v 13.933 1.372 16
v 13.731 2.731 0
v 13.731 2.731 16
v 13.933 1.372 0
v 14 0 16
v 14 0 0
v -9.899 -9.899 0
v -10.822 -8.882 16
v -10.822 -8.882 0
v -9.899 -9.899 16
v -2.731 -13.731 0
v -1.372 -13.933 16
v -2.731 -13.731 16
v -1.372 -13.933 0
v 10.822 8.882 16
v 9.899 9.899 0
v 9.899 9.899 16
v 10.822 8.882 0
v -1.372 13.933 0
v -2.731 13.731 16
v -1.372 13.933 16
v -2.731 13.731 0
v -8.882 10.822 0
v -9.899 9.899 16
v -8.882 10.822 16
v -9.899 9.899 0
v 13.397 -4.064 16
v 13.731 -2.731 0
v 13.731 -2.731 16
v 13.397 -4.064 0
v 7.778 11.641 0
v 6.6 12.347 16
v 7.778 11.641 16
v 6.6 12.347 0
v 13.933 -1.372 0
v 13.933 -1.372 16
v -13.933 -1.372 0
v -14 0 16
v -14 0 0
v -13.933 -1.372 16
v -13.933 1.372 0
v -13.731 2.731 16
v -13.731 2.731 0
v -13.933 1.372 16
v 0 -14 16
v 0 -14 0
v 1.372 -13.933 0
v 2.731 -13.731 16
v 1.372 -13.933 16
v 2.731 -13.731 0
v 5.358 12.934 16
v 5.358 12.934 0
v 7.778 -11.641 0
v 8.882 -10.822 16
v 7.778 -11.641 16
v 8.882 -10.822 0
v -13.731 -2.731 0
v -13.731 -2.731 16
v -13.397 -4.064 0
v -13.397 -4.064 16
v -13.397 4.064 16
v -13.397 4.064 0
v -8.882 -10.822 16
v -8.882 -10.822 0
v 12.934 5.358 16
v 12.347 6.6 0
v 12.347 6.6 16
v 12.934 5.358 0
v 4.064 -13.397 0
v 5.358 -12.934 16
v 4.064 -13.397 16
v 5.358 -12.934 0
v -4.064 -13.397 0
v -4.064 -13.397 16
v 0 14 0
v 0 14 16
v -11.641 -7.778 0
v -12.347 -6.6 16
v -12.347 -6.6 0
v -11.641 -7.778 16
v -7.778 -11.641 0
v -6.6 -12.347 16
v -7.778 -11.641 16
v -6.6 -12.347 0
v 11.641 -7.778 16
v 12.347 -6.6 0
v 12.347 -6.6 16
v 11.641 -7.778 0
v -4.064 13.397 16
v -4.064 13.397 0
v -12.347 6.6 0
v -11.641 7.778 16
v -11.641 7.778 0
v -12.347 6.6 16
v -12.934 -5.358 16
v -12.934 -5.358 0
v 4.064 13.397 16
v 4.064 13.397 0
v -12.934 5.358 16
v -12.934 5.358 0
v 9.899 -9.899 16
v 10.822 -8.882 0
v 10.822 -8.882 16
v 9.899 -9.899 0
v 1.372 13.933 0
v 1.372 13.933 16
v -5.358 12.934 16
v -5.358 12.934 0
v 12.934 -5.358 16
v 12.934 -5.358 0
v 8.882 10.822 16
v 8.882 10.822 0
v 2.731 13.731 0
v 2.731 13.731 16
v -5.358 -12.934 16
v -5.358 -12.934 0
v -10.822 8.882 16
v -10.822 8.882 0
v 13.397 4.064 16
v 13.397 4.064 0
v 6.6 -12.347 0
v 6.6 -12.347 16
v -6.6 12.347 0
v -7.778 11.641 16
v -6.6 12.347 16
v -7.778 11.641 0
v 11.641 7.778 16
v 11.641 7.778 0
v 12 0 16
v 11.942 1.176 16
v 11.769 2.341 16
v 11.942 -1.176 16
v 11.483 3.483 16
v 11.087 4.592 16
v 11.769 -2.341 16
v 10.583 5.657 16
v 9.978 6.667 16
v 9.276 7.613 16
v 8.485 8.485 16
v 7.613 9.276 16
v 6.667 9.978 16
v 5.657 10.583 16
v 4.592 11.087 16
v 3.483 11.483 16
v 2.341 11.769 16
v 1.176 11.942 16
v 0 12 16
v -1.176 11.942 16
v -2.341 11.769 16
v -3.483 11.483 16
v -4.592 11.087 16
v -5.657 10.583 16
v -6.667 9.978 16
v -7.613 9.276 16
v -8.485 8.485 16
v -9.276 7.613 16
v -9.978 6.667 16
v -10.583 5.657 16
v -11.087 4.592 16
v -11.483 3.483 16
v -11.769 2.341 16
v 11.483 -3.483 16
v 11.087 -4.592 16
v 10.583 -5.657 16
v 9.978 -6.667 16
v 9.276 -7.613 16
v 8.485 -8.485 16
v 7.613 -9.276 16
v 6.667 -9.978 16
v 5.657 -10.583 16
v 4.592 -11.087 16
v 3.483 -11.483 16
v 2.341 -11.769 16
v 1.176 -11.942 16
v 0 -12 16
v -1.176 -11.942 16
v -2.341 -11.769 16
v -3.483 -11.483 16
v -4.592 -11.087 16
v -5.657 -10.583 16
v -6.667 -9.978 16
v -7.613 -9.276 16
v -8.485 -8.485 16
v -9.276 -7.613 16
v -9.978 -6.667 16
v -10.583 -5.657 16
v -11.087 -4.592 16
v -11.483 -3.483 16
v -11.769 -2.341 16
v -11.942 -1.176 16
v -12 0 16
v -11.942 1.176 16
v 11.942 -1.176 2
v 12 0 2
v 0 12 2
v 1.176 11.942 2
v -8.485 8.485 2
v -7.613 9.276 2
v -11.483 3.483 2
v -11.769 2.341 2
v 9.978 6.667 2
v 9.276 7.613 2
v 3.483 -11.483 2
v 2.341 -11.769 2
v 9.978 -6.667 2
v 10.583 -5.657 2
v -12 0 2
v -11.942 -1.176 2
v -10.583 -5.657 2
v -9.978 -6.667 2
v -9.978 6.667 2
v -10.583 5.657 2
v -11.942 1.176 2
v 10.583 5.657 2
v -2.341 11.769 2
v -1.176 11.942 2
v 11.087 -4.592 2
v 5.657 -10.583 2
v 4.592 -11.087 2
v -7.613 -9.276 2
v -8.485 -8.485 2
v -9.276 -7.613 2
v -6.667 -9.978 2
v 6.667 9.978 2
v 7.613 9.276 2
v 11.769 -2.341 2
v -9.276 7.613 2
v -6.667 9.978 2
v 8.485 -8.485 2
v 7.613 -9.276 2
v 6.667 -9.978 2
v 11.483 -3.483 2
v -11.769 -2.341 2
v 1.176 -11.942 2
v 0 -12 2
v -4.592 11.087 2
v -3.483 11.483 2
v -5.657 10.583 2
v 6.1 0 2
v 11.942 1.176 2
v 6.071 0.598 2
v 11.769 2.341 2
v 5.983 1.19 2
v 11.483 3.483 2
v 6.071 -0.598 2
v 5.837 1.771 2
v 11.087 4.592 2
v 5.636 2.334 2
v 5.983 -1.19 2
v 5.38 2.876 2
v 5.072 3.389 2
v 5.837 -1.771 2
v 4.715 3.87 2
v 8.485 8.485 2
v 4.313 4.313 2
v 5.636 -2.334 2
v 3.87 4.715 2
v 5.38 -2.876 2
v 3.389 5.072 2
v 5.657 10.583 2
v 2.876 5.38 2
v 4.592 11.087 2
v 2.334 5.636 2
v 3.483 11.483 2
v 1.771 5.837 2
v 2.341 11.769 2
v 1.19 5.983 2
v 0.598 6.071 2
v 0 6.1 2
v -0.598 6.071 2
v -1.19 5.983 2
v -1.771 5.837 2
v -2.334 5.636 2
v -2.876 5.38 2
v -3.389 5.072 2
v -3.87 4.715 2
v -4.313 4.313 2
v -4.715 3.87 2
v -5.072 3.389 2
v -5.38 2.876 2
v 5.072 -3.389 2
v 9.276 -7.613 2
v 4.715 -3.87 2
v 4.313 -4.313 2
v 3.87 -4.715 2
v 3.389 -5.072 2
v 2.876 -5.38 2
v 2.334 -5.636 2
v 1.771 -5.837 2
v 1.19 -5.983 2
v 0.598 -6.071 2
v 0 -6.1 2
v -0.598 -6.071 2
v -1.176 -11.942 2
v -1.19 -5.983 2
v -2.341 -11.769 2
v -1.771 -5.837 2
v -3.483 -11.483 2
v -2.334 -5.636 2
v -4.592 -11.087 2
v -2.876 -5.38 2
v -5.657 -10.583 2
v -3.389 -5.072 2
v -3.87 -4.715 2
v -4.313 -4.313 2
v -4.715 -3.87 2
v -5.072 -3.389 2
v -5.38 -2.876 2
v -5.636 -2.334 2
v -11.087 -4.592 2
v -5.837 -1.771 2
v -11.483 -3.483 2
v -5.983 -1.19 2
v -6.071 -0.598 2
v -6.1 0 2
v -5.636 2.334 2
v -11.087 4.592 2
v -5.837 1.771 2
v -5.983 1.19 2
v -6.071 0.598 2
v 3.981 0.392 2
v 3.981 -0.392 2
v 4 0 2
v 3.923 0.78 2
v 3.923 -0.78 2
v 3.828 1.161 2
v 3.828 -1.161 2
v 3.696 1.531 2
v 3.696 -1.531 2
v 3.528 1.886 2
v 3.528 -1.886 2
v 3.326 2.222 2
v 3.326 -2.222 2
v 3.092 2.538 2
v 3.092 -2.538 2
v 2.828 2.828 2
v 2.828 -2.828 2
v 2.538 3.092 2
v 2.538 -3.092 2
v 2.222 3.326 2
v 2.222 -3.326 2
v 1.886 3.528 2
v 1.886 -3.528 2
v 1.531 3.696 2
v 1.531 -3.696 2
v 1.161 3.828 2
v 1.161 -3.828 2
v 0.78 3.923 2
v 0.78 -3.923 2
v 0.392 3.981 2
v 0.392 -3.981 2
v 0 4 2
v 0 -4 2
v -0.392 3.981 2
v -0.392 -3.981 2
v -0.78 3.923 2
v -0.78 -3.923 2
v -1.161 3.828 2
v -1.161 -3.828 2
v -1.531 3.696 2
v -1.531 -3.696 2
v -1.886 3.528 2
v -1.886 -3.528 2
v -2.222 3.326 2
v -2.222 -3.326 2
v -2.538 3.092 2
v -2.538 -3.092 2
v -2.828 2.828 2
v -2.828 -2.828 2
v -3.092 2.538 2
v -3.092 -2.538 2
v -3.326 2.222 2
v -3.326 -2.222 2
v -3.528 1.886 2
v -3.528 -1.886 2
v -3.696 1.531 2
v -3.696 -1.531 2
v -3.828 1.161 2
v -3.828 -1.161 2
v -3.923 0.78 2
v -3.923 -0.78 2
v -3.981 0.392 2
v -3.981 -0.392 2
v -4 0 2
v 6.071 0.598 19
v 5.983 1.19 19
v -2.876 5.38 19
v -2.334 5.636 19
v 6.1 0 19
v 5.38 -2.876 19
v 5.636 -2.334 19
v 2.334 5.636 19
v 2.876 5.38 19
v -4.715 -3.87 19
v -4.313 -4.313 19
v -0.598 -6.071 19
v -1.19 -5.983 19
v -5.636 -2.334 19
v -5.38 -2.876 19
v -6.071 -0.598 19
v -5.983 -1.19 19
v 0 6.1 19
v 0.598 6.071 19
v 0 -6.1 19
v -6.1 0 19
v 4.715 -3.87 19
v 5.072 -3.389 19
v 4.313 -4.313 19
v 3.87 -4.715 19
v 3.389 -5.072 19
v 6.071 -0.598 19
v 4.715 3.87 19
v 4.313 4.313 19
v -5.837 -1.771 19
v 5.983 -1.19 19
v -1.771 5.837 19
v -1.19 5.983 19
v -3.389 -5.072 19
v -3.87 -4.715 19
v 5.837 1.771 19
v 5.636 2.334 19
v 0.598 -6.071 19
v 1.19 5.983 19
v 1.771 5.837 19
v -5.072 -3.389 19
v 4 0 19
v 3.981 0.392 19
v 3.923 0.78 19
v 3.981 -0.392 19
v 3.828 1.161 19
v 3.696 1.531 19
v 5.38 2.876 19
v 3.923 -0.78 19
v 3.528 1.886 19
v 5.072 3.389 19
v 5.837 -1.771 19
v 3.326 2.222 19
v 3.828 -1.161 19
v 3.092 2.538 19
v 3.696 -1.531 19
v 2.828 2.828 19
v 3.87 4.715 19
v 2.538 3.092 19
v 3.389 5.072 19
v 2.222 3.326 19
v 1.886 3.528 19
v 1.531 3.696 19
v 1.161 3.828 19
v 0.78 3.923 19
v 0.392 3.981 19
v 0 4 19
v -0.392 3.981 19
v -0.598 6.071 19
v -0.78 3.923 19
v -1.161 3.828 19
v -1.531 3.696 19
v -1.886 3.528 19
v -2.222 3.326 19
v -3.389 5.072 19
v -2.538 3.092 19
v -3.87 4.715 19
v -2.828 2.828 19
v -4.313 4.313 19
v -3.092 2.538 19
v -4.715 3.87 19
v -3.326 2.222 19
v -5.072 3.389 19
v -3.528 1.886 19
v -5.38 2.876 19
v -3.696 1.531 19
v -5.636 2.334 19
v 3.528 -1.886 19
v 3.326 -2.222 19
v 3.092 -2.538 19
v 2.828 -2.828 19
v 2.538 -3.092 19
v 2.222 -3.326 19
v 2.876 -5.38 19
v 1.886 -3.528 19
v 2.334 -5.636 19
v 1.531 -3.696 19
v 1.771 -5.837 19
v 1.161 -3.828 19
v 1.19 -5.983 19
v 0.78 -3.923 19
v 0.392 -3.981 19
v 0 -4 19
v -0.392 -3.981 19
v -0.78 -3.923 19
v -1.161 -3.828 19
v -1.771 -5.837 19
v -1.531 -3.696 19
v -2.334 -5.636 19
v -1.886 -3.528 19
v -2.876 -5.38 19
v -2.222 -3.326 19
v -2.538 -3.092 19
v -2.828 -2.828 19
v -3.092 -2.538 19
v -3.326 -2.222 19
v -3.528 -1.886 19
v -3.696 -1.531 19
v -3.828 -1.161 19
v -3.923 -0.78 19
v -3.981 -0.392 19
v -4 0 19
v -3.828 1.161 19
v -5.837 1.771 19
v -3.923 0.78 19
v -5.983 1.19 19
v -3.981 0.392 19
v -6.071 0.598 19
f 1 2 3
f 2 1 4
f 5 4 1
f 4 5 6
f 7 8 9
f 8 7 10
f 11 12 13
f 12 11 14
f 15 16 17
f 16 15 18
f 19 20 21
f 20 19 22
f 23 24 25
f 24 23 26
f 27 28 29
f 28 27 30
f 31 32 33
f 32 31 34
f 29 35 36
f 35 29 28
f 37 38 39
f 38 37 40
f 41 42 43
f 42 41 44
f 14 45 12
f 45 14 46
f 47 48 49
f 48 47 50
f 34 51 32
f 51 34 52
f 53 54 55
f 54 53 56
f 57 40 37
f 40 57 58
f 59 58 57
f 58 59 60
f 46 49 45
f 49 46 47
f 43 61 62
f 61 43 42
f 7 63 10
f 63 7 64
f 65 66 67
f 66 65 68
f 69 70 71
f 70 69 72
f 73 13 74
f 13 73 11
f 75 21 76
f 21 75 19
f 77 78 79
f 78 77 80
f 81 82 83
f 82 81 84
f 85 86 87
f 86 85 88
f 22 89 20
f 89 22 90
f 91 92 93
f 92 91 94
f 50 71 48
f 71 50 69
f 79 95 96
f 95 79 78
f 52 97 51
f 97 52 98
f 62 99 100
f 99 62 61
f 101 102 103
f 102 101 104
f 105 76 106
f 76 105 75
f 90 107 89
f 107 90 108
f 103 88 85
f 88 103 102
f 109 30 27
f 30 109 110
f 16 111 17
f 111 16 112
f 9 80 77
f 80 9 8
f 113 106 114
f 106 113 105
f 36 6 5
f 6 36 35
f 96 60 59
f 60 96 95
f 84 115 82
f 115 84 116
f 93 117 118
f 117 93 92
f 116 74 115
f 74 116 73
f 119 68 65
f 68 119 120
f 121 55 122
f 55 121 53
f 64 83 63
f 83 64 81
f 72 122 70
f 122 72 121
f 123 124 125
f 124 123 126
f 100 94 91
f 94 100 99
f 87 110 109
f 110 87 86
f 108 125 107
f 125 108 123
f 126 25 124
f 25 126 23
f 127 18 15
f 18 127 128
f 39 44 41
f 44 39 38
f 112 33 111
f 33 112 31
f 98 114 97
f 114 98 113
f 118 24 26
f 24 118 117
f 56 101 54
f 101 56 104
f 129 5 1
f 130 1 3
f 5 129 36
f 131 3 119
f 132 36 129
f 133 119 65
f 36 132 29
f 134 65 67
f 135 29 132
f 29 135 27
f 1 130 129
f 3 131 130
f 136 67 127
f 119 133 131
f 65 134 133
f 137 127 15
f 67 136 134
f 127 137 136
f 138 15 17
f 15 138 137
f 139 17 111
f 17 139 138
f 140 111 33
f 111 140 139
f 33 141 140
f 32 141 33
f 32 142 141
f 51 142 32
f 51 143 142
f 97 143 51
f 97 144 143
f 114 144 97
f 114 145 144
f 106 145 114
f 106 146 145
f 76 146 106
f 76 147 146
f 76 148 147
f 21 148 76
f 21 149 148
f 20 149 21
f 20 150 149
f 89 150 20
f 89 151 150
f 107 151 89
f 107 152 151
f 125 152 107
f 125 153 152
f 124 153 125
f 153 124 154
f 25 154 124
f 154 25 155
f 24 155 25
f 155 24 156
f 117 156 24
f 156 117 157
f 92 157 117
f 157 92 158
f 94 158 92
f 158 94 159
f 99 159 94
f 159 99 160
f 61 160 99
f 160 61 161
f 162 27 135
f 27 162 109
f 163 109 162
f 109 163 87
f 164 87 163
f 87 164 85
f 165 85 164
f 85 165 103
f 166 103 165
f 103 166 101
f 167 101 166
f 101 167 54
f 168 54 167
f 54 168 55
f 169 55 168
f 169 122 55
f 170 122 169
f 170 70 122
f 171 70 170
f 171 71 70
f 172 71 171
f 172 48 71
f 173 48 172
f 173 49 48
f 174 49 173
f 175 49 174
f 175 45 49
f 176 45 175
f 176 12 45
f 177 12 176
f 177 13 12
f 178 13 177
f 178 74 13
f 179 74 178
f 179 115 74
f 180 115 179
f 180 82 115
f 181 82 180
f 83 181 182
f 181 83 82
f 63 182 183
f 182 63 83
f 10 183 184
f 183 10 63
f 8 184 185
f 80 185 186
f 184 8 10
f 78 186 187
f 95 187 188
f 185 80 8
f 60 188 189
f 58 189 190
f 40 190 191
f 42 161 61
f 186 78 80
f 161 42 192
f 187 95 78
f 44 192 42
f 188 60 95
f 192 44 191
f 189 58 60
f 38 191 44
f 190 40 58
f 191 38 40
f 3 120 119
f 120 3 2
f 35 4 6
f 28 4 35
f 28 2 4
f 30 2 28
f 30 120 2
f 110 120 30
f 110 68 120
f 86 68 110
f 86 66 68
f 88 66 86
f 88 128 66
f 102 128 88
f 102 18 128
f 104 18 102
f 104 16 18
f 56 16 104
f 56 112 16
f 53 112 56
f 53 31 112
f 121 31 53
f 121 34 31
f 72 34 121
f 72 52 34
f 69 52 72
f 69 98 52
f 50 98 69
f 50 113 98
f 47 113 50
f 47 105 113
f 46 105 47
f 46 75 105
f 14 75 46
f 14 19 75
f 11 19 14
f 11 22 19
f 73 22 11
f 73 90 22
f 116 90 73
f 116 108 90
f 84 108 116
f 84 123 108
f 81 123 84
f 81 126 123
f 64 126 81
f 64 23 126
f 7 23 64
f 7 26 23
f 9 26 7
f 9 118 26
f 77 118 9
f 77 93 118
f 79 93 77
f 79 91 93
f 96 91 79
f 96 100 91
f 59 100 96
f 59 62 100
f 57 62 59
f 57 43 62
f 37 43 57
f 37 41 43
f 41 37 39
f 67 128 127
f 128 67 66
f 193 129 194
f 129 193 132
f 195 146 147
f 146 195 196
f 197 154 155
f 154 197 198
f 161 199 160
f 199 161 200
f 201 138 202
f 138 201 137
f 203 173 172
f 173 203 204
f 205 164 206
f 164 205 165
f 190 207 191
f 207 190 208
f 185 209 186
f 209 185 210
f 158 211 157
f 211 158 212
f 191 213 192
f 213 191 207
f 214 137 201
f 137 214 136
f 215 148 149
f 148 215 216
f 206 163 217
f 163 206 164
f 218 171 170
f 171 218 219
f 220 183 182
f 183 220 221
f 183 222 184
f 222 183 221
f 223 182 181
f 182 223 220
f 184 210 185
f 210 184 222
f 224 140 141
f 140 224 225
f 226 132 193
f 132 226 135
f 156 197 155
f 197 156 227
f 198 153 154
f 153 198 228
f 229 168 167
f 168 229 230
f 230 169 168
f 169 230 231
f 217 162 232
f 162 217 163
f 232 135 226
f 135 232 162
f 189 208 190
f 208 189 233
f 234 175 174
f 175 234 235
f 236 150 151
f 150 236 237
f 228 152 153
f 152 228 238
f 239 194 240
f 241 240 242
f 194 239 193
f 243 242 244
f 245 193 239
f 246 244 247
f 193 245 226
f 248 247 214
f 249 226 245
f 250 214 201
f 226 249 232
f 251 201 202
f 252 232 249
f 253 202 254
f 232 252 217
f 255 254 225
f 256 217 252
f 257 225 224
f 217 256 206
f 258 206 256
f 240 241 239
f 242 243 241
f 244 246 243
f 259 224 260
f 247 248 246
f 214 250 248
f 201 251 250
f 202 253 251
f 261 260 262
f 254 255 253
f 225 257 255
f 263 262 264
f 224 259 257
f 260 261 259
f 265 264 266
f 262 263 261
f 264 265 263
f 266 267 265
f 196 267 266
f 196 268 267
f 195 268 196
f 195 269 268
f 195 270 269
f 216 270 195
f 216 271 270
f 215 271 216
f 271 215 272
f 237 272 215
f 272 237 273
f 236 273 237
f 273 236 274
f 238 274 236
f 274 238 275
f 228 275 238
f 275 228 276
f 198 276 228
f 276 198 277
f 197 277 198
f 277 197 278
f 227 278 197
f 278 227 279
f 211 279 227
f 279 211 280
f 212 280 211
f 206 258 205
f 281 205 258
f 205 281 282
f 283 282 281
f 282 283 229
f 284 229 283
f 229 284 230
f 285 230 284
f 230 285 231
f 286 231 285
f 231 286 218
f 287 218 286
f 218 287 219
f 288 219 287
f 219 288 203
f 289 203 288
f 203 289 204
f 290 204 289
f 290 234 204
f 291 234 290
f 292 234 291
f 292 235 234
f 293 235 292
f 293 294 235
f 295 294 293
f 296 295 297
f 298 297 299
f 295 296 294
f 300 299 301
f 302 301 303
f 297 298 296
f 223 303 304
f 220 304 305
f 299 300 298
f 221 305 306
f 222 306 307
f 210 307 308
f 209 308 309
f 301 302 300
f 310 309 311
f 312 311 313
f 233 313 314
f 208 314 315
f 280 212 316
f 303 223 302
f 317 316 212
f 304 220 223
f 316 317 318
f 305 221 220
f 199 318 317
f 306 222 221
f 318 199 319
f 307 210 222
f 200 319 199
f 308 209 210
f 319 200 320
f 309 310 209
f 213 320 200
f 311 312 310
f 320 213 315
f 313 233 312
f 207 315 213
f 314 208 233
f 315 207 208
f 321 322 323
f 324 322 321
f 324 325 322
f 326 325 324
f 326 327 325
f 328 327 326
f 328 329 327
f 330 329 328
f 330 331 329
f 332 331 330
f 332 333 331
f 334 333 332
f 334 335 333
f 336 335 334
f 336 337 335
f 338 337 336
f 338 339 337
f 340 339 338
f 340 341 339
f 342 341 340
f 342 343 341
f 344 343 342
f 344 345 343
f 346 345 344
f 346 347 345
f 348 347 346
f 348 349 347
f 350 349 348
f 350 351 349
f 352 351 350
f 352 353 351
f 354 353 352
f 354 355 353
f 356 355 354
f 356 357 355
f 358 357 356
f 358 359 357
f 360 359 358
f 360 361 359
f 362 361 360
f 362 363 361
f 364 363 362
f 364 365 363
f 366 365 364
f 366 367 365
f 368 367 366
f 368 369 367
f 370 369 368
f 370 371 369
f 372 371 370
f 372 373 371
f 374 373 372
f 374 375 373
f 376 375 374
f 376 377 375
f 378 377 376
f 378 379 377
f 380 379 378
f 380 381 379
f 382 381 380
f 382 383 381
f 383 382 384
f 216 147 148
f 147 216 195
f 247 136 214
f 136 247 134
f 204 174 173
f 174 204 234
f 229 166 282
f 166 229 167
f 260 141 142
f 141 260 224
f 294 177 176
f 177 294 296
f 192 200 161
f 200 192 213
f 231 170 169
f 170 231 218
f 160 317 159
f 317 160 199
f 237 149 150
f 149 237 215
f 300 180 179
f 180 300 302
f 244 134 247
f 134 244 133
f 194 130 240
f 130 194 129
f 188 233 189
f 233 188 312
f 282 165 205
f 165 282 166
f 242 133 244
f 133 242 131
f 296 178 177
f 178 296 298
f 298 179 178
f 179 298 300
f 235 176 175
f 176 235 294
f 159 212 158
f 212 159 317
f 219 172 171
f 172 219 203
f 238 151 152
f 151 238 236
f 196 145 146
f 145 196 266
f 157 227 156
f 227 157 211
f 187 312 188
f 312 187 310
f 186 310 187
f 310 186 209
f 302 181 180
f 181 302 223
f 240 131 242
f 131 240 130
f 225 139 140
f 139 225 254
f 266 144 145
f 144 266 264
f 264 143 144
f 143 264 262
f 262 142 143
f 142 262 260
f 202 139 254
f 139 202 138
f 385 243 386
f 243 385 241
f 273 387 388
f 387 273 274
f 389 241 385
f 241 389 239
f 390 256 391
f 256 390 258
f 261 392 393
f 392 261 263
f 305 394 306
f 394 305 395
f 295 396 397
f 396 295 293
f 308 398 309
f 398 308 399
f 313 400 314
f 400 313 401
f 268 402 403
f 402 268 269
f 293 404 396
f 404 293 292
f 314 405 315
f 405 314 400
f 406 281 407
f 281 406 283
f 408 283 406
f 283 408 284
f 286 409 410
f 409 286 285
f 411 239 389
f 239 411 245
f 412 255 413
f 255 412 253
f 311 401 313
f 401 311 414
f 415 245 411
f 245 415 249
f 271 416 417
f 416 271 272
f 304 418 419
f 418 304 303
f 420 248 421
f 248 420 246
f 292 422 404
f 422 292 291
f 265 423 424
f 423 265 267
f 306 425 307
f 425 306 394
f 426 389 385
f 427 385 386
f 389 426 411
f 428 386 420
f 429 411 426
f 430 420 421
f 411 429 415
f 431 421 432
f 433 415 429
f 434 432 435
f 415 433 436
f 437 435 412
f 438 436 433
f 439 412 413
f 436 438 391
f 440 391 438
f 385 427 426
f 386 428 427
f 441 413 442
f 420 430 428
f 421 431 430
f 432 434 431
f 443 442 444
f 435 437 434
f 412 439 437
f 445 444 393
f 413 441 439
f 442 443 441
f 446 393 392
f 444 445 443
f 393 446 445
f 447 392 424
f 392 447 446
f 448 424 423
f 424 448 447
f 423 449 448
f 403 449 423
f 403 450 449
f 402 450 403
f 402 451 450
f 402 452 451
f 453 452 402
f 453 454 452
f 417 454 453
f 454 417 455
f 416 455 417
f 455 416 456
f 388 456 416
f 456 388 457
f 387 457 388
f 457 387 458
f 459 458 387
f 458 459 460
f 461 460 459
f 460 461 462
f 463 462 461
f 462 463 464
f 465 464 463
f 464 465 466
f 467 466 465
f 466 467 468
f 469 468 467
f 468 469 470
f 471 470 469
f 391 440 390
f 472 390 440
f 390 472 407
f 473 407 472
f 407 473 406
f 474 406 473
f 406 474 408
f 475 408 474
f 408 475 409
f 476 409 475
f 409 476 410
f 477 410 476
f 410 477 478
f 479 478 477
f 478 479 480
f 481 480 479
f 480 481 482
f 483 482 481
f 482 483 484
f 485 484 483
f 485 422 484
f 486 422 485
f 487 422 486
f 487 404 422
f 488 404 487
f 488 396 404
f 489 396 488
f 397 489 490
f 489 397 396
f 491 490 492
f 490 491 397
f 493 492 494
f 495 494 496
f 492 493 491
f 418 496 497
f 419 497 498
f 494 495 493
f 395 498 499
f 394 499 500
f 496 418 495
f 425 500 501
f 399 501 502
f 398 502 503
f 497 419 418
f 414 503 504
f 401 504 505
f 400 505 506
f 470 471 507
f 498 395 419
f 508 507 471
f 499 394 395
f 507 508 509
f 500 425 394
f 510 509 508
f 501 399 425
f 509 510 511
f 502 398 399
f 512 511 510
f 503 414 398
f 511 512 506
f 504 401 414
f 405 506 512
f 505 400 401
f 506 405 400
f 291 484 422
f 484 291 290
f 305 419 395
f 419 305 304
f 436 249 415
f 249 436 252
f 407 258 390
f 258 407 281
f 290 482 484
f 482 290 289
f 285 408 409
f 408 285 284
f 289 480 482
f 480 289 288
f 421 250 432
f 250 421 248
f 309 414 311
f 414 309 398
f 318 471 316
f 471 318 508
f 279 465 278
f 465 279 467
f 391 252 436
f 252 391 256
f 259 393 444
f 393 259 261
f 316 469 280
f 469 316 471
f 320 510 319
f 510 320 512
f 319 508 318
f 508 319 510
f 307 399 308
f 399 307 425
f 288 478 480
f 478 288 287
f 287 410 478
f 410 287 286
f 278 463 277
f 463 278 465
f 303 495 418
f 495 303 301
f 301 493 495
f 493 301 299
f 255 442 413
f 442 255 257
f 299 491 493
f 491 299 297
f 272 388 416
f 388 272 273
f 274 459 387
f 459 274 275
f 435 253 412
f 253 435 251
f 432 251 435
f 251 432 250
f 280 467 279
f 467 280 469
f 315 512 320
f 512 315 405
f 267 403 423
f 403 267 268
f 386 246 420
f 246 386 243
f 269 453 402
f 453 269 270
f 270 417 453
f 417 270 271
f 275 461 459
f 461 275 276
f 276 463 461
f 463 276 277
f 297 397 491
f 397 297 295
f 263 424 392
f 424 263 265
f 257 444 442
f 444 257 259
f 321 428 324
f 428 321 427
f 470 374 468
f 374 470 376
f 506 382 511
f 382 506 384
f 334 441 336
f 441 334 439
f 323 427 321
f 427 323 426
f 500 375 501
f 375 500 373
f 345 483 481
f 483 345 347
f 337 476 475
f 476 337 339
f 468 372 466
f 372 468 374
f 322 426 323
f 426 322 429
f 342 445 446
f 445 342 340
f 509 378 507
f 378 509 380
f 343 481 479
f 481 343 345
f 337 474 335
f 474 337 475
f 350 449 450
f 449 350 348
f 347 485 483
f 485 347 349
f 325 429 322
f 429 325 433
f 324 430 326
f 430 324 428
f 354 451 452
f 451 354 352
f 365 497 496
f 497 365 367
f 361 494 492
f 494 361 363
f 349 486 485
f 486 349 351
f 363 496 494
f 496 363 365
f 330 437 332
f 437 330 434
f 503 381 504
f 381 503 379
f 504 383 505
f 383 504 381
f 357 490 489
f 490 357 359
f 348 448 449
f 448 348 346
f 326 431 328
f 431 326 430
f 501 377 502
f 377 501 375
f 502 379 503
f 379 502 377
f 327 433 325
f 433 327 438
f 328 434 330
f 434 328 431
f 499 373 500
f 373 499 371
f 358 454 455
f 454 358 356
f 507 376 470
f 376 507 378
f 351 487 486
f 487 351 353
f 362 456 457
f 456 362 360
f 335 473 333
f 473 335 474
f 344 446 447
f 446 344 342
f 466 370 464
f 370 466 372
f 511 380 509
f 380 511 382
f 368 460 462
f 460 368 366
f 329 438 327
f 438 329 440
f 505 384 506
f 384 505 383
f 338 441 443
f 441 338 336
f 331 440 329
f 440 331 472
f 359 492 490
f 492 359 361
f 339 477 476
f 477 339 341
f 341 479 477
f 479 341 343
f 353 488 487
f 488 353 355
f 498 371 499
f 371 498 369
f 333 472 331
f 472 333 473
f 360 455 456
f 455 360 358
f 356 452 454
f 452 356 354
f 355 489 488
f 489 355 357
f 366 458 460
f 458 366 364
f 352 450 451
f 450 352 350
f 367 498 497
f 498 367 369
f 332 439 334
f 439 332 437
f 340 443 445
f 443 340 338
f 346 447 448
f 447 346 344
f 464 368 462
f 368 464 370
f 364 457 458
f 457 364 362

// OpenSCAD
$fn = 64;

union() {
    difference() {
        linear_extrude(16)
            circle(r = 14.00);
        
        translate([0, 0, 2])
            linear_extrude(16)
                circle(r = 12.00);
    }
    
    difference() {
        linear_extrude(19)
                circle(r = 6.10);
        translate([0, 0, 2])
            linear_extrude(24)
                circle(r = 4.00);
    }
}
